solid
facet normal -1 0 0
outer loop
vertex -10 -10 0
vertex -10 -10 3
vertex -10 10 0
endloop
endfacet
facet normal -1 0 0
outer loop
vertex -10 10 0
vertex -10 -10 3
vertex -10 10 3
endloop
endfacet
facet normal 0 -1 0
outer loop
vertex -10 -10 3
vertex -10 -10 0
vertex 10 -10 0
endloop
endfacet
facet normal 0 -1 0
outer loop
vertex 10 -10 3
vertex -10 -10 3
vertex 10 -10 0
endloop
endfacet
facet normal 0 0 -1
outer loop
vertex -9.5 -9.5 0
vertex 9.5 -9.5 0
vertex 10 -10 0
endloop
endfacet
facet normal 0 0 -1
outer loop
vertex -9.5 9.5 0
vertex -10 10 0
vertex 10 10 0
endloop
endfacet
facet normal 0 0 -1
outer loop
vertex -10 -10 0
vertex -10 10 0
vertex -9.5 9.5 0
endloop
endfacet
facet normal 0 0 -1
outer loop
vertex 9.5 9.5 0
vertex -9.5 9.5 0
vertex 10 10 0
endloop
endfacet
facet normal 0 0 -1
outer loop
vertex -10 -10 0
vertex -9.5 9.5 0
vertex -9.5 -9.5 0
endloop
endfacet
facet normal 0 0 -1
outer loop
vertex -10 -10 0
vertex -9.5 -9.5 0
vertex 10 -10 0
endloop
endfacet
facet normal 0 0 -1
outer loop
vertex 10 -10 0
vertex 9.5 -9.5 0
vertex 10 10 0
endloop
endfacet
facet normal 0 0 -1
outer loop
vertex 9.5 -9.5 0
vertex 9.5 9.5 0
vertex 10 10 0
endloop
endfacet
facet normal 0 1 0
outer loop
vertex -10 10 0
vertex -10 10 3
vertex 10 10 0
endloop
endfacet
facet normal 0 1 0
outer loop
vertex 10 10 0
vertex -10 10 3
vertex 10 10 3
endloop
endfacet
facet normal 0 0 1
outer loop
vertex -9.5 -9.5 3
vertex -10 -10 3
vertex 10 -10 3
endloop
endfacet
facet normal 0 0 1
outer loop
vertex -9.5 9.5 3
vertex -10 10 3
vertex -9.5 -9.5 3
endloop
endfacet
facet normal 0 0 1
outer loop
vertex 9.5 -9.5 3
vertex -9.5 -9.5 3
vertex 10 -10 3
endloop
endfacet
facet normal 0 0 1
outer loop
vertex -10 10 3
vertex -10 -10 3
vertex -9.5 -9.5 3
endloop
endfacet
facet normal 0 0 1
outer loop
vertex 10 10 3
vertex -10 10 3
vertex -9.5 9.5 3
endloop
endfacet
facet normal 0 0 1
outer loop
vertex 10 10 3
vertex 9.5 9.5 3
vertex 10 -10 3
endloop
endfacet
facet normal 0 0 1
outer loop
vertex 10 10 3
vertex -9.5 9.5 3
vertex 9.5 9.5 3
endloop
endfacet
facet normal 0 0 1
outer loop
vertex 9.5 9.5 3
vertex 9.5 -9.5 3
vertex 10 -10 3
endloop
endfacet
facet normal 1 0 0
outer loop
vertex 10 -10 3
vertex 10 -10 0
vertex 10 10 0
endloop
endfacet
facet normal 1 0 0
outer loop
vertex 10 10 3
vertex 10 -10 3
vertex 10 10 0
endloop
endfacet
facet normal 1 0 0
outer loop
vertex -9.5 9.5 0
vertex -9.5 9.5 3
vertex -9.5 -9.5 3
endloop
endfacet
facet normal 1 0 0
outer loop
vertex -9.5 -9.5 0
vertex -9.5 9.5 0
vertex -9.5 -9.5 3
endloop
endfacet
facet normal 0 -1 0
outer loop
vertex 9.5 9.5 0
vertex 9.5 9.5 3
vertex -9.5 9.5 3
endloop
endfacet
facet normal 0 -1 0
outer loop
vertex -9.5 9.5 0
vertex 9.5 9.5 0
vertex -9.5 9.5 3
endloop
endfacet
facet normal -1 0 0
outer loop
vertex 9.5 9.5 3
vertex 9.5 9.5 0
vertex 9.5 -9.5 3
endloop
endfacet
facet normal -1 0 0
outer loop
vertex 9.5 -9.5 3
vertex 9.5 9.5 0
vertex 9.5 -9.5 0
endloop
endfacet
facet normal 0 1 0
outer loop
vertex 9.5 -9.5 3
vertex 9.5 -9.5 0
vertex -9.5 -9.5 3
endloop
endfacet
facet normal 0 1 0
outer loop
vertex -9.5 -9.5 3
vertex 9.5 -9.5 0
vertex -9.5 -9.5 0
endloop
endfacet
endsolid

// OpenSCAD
translate([0,0,1.5])
difference(){
	cube([20,20,3],center=true);
	cube([19,19,3],center=true);
}
